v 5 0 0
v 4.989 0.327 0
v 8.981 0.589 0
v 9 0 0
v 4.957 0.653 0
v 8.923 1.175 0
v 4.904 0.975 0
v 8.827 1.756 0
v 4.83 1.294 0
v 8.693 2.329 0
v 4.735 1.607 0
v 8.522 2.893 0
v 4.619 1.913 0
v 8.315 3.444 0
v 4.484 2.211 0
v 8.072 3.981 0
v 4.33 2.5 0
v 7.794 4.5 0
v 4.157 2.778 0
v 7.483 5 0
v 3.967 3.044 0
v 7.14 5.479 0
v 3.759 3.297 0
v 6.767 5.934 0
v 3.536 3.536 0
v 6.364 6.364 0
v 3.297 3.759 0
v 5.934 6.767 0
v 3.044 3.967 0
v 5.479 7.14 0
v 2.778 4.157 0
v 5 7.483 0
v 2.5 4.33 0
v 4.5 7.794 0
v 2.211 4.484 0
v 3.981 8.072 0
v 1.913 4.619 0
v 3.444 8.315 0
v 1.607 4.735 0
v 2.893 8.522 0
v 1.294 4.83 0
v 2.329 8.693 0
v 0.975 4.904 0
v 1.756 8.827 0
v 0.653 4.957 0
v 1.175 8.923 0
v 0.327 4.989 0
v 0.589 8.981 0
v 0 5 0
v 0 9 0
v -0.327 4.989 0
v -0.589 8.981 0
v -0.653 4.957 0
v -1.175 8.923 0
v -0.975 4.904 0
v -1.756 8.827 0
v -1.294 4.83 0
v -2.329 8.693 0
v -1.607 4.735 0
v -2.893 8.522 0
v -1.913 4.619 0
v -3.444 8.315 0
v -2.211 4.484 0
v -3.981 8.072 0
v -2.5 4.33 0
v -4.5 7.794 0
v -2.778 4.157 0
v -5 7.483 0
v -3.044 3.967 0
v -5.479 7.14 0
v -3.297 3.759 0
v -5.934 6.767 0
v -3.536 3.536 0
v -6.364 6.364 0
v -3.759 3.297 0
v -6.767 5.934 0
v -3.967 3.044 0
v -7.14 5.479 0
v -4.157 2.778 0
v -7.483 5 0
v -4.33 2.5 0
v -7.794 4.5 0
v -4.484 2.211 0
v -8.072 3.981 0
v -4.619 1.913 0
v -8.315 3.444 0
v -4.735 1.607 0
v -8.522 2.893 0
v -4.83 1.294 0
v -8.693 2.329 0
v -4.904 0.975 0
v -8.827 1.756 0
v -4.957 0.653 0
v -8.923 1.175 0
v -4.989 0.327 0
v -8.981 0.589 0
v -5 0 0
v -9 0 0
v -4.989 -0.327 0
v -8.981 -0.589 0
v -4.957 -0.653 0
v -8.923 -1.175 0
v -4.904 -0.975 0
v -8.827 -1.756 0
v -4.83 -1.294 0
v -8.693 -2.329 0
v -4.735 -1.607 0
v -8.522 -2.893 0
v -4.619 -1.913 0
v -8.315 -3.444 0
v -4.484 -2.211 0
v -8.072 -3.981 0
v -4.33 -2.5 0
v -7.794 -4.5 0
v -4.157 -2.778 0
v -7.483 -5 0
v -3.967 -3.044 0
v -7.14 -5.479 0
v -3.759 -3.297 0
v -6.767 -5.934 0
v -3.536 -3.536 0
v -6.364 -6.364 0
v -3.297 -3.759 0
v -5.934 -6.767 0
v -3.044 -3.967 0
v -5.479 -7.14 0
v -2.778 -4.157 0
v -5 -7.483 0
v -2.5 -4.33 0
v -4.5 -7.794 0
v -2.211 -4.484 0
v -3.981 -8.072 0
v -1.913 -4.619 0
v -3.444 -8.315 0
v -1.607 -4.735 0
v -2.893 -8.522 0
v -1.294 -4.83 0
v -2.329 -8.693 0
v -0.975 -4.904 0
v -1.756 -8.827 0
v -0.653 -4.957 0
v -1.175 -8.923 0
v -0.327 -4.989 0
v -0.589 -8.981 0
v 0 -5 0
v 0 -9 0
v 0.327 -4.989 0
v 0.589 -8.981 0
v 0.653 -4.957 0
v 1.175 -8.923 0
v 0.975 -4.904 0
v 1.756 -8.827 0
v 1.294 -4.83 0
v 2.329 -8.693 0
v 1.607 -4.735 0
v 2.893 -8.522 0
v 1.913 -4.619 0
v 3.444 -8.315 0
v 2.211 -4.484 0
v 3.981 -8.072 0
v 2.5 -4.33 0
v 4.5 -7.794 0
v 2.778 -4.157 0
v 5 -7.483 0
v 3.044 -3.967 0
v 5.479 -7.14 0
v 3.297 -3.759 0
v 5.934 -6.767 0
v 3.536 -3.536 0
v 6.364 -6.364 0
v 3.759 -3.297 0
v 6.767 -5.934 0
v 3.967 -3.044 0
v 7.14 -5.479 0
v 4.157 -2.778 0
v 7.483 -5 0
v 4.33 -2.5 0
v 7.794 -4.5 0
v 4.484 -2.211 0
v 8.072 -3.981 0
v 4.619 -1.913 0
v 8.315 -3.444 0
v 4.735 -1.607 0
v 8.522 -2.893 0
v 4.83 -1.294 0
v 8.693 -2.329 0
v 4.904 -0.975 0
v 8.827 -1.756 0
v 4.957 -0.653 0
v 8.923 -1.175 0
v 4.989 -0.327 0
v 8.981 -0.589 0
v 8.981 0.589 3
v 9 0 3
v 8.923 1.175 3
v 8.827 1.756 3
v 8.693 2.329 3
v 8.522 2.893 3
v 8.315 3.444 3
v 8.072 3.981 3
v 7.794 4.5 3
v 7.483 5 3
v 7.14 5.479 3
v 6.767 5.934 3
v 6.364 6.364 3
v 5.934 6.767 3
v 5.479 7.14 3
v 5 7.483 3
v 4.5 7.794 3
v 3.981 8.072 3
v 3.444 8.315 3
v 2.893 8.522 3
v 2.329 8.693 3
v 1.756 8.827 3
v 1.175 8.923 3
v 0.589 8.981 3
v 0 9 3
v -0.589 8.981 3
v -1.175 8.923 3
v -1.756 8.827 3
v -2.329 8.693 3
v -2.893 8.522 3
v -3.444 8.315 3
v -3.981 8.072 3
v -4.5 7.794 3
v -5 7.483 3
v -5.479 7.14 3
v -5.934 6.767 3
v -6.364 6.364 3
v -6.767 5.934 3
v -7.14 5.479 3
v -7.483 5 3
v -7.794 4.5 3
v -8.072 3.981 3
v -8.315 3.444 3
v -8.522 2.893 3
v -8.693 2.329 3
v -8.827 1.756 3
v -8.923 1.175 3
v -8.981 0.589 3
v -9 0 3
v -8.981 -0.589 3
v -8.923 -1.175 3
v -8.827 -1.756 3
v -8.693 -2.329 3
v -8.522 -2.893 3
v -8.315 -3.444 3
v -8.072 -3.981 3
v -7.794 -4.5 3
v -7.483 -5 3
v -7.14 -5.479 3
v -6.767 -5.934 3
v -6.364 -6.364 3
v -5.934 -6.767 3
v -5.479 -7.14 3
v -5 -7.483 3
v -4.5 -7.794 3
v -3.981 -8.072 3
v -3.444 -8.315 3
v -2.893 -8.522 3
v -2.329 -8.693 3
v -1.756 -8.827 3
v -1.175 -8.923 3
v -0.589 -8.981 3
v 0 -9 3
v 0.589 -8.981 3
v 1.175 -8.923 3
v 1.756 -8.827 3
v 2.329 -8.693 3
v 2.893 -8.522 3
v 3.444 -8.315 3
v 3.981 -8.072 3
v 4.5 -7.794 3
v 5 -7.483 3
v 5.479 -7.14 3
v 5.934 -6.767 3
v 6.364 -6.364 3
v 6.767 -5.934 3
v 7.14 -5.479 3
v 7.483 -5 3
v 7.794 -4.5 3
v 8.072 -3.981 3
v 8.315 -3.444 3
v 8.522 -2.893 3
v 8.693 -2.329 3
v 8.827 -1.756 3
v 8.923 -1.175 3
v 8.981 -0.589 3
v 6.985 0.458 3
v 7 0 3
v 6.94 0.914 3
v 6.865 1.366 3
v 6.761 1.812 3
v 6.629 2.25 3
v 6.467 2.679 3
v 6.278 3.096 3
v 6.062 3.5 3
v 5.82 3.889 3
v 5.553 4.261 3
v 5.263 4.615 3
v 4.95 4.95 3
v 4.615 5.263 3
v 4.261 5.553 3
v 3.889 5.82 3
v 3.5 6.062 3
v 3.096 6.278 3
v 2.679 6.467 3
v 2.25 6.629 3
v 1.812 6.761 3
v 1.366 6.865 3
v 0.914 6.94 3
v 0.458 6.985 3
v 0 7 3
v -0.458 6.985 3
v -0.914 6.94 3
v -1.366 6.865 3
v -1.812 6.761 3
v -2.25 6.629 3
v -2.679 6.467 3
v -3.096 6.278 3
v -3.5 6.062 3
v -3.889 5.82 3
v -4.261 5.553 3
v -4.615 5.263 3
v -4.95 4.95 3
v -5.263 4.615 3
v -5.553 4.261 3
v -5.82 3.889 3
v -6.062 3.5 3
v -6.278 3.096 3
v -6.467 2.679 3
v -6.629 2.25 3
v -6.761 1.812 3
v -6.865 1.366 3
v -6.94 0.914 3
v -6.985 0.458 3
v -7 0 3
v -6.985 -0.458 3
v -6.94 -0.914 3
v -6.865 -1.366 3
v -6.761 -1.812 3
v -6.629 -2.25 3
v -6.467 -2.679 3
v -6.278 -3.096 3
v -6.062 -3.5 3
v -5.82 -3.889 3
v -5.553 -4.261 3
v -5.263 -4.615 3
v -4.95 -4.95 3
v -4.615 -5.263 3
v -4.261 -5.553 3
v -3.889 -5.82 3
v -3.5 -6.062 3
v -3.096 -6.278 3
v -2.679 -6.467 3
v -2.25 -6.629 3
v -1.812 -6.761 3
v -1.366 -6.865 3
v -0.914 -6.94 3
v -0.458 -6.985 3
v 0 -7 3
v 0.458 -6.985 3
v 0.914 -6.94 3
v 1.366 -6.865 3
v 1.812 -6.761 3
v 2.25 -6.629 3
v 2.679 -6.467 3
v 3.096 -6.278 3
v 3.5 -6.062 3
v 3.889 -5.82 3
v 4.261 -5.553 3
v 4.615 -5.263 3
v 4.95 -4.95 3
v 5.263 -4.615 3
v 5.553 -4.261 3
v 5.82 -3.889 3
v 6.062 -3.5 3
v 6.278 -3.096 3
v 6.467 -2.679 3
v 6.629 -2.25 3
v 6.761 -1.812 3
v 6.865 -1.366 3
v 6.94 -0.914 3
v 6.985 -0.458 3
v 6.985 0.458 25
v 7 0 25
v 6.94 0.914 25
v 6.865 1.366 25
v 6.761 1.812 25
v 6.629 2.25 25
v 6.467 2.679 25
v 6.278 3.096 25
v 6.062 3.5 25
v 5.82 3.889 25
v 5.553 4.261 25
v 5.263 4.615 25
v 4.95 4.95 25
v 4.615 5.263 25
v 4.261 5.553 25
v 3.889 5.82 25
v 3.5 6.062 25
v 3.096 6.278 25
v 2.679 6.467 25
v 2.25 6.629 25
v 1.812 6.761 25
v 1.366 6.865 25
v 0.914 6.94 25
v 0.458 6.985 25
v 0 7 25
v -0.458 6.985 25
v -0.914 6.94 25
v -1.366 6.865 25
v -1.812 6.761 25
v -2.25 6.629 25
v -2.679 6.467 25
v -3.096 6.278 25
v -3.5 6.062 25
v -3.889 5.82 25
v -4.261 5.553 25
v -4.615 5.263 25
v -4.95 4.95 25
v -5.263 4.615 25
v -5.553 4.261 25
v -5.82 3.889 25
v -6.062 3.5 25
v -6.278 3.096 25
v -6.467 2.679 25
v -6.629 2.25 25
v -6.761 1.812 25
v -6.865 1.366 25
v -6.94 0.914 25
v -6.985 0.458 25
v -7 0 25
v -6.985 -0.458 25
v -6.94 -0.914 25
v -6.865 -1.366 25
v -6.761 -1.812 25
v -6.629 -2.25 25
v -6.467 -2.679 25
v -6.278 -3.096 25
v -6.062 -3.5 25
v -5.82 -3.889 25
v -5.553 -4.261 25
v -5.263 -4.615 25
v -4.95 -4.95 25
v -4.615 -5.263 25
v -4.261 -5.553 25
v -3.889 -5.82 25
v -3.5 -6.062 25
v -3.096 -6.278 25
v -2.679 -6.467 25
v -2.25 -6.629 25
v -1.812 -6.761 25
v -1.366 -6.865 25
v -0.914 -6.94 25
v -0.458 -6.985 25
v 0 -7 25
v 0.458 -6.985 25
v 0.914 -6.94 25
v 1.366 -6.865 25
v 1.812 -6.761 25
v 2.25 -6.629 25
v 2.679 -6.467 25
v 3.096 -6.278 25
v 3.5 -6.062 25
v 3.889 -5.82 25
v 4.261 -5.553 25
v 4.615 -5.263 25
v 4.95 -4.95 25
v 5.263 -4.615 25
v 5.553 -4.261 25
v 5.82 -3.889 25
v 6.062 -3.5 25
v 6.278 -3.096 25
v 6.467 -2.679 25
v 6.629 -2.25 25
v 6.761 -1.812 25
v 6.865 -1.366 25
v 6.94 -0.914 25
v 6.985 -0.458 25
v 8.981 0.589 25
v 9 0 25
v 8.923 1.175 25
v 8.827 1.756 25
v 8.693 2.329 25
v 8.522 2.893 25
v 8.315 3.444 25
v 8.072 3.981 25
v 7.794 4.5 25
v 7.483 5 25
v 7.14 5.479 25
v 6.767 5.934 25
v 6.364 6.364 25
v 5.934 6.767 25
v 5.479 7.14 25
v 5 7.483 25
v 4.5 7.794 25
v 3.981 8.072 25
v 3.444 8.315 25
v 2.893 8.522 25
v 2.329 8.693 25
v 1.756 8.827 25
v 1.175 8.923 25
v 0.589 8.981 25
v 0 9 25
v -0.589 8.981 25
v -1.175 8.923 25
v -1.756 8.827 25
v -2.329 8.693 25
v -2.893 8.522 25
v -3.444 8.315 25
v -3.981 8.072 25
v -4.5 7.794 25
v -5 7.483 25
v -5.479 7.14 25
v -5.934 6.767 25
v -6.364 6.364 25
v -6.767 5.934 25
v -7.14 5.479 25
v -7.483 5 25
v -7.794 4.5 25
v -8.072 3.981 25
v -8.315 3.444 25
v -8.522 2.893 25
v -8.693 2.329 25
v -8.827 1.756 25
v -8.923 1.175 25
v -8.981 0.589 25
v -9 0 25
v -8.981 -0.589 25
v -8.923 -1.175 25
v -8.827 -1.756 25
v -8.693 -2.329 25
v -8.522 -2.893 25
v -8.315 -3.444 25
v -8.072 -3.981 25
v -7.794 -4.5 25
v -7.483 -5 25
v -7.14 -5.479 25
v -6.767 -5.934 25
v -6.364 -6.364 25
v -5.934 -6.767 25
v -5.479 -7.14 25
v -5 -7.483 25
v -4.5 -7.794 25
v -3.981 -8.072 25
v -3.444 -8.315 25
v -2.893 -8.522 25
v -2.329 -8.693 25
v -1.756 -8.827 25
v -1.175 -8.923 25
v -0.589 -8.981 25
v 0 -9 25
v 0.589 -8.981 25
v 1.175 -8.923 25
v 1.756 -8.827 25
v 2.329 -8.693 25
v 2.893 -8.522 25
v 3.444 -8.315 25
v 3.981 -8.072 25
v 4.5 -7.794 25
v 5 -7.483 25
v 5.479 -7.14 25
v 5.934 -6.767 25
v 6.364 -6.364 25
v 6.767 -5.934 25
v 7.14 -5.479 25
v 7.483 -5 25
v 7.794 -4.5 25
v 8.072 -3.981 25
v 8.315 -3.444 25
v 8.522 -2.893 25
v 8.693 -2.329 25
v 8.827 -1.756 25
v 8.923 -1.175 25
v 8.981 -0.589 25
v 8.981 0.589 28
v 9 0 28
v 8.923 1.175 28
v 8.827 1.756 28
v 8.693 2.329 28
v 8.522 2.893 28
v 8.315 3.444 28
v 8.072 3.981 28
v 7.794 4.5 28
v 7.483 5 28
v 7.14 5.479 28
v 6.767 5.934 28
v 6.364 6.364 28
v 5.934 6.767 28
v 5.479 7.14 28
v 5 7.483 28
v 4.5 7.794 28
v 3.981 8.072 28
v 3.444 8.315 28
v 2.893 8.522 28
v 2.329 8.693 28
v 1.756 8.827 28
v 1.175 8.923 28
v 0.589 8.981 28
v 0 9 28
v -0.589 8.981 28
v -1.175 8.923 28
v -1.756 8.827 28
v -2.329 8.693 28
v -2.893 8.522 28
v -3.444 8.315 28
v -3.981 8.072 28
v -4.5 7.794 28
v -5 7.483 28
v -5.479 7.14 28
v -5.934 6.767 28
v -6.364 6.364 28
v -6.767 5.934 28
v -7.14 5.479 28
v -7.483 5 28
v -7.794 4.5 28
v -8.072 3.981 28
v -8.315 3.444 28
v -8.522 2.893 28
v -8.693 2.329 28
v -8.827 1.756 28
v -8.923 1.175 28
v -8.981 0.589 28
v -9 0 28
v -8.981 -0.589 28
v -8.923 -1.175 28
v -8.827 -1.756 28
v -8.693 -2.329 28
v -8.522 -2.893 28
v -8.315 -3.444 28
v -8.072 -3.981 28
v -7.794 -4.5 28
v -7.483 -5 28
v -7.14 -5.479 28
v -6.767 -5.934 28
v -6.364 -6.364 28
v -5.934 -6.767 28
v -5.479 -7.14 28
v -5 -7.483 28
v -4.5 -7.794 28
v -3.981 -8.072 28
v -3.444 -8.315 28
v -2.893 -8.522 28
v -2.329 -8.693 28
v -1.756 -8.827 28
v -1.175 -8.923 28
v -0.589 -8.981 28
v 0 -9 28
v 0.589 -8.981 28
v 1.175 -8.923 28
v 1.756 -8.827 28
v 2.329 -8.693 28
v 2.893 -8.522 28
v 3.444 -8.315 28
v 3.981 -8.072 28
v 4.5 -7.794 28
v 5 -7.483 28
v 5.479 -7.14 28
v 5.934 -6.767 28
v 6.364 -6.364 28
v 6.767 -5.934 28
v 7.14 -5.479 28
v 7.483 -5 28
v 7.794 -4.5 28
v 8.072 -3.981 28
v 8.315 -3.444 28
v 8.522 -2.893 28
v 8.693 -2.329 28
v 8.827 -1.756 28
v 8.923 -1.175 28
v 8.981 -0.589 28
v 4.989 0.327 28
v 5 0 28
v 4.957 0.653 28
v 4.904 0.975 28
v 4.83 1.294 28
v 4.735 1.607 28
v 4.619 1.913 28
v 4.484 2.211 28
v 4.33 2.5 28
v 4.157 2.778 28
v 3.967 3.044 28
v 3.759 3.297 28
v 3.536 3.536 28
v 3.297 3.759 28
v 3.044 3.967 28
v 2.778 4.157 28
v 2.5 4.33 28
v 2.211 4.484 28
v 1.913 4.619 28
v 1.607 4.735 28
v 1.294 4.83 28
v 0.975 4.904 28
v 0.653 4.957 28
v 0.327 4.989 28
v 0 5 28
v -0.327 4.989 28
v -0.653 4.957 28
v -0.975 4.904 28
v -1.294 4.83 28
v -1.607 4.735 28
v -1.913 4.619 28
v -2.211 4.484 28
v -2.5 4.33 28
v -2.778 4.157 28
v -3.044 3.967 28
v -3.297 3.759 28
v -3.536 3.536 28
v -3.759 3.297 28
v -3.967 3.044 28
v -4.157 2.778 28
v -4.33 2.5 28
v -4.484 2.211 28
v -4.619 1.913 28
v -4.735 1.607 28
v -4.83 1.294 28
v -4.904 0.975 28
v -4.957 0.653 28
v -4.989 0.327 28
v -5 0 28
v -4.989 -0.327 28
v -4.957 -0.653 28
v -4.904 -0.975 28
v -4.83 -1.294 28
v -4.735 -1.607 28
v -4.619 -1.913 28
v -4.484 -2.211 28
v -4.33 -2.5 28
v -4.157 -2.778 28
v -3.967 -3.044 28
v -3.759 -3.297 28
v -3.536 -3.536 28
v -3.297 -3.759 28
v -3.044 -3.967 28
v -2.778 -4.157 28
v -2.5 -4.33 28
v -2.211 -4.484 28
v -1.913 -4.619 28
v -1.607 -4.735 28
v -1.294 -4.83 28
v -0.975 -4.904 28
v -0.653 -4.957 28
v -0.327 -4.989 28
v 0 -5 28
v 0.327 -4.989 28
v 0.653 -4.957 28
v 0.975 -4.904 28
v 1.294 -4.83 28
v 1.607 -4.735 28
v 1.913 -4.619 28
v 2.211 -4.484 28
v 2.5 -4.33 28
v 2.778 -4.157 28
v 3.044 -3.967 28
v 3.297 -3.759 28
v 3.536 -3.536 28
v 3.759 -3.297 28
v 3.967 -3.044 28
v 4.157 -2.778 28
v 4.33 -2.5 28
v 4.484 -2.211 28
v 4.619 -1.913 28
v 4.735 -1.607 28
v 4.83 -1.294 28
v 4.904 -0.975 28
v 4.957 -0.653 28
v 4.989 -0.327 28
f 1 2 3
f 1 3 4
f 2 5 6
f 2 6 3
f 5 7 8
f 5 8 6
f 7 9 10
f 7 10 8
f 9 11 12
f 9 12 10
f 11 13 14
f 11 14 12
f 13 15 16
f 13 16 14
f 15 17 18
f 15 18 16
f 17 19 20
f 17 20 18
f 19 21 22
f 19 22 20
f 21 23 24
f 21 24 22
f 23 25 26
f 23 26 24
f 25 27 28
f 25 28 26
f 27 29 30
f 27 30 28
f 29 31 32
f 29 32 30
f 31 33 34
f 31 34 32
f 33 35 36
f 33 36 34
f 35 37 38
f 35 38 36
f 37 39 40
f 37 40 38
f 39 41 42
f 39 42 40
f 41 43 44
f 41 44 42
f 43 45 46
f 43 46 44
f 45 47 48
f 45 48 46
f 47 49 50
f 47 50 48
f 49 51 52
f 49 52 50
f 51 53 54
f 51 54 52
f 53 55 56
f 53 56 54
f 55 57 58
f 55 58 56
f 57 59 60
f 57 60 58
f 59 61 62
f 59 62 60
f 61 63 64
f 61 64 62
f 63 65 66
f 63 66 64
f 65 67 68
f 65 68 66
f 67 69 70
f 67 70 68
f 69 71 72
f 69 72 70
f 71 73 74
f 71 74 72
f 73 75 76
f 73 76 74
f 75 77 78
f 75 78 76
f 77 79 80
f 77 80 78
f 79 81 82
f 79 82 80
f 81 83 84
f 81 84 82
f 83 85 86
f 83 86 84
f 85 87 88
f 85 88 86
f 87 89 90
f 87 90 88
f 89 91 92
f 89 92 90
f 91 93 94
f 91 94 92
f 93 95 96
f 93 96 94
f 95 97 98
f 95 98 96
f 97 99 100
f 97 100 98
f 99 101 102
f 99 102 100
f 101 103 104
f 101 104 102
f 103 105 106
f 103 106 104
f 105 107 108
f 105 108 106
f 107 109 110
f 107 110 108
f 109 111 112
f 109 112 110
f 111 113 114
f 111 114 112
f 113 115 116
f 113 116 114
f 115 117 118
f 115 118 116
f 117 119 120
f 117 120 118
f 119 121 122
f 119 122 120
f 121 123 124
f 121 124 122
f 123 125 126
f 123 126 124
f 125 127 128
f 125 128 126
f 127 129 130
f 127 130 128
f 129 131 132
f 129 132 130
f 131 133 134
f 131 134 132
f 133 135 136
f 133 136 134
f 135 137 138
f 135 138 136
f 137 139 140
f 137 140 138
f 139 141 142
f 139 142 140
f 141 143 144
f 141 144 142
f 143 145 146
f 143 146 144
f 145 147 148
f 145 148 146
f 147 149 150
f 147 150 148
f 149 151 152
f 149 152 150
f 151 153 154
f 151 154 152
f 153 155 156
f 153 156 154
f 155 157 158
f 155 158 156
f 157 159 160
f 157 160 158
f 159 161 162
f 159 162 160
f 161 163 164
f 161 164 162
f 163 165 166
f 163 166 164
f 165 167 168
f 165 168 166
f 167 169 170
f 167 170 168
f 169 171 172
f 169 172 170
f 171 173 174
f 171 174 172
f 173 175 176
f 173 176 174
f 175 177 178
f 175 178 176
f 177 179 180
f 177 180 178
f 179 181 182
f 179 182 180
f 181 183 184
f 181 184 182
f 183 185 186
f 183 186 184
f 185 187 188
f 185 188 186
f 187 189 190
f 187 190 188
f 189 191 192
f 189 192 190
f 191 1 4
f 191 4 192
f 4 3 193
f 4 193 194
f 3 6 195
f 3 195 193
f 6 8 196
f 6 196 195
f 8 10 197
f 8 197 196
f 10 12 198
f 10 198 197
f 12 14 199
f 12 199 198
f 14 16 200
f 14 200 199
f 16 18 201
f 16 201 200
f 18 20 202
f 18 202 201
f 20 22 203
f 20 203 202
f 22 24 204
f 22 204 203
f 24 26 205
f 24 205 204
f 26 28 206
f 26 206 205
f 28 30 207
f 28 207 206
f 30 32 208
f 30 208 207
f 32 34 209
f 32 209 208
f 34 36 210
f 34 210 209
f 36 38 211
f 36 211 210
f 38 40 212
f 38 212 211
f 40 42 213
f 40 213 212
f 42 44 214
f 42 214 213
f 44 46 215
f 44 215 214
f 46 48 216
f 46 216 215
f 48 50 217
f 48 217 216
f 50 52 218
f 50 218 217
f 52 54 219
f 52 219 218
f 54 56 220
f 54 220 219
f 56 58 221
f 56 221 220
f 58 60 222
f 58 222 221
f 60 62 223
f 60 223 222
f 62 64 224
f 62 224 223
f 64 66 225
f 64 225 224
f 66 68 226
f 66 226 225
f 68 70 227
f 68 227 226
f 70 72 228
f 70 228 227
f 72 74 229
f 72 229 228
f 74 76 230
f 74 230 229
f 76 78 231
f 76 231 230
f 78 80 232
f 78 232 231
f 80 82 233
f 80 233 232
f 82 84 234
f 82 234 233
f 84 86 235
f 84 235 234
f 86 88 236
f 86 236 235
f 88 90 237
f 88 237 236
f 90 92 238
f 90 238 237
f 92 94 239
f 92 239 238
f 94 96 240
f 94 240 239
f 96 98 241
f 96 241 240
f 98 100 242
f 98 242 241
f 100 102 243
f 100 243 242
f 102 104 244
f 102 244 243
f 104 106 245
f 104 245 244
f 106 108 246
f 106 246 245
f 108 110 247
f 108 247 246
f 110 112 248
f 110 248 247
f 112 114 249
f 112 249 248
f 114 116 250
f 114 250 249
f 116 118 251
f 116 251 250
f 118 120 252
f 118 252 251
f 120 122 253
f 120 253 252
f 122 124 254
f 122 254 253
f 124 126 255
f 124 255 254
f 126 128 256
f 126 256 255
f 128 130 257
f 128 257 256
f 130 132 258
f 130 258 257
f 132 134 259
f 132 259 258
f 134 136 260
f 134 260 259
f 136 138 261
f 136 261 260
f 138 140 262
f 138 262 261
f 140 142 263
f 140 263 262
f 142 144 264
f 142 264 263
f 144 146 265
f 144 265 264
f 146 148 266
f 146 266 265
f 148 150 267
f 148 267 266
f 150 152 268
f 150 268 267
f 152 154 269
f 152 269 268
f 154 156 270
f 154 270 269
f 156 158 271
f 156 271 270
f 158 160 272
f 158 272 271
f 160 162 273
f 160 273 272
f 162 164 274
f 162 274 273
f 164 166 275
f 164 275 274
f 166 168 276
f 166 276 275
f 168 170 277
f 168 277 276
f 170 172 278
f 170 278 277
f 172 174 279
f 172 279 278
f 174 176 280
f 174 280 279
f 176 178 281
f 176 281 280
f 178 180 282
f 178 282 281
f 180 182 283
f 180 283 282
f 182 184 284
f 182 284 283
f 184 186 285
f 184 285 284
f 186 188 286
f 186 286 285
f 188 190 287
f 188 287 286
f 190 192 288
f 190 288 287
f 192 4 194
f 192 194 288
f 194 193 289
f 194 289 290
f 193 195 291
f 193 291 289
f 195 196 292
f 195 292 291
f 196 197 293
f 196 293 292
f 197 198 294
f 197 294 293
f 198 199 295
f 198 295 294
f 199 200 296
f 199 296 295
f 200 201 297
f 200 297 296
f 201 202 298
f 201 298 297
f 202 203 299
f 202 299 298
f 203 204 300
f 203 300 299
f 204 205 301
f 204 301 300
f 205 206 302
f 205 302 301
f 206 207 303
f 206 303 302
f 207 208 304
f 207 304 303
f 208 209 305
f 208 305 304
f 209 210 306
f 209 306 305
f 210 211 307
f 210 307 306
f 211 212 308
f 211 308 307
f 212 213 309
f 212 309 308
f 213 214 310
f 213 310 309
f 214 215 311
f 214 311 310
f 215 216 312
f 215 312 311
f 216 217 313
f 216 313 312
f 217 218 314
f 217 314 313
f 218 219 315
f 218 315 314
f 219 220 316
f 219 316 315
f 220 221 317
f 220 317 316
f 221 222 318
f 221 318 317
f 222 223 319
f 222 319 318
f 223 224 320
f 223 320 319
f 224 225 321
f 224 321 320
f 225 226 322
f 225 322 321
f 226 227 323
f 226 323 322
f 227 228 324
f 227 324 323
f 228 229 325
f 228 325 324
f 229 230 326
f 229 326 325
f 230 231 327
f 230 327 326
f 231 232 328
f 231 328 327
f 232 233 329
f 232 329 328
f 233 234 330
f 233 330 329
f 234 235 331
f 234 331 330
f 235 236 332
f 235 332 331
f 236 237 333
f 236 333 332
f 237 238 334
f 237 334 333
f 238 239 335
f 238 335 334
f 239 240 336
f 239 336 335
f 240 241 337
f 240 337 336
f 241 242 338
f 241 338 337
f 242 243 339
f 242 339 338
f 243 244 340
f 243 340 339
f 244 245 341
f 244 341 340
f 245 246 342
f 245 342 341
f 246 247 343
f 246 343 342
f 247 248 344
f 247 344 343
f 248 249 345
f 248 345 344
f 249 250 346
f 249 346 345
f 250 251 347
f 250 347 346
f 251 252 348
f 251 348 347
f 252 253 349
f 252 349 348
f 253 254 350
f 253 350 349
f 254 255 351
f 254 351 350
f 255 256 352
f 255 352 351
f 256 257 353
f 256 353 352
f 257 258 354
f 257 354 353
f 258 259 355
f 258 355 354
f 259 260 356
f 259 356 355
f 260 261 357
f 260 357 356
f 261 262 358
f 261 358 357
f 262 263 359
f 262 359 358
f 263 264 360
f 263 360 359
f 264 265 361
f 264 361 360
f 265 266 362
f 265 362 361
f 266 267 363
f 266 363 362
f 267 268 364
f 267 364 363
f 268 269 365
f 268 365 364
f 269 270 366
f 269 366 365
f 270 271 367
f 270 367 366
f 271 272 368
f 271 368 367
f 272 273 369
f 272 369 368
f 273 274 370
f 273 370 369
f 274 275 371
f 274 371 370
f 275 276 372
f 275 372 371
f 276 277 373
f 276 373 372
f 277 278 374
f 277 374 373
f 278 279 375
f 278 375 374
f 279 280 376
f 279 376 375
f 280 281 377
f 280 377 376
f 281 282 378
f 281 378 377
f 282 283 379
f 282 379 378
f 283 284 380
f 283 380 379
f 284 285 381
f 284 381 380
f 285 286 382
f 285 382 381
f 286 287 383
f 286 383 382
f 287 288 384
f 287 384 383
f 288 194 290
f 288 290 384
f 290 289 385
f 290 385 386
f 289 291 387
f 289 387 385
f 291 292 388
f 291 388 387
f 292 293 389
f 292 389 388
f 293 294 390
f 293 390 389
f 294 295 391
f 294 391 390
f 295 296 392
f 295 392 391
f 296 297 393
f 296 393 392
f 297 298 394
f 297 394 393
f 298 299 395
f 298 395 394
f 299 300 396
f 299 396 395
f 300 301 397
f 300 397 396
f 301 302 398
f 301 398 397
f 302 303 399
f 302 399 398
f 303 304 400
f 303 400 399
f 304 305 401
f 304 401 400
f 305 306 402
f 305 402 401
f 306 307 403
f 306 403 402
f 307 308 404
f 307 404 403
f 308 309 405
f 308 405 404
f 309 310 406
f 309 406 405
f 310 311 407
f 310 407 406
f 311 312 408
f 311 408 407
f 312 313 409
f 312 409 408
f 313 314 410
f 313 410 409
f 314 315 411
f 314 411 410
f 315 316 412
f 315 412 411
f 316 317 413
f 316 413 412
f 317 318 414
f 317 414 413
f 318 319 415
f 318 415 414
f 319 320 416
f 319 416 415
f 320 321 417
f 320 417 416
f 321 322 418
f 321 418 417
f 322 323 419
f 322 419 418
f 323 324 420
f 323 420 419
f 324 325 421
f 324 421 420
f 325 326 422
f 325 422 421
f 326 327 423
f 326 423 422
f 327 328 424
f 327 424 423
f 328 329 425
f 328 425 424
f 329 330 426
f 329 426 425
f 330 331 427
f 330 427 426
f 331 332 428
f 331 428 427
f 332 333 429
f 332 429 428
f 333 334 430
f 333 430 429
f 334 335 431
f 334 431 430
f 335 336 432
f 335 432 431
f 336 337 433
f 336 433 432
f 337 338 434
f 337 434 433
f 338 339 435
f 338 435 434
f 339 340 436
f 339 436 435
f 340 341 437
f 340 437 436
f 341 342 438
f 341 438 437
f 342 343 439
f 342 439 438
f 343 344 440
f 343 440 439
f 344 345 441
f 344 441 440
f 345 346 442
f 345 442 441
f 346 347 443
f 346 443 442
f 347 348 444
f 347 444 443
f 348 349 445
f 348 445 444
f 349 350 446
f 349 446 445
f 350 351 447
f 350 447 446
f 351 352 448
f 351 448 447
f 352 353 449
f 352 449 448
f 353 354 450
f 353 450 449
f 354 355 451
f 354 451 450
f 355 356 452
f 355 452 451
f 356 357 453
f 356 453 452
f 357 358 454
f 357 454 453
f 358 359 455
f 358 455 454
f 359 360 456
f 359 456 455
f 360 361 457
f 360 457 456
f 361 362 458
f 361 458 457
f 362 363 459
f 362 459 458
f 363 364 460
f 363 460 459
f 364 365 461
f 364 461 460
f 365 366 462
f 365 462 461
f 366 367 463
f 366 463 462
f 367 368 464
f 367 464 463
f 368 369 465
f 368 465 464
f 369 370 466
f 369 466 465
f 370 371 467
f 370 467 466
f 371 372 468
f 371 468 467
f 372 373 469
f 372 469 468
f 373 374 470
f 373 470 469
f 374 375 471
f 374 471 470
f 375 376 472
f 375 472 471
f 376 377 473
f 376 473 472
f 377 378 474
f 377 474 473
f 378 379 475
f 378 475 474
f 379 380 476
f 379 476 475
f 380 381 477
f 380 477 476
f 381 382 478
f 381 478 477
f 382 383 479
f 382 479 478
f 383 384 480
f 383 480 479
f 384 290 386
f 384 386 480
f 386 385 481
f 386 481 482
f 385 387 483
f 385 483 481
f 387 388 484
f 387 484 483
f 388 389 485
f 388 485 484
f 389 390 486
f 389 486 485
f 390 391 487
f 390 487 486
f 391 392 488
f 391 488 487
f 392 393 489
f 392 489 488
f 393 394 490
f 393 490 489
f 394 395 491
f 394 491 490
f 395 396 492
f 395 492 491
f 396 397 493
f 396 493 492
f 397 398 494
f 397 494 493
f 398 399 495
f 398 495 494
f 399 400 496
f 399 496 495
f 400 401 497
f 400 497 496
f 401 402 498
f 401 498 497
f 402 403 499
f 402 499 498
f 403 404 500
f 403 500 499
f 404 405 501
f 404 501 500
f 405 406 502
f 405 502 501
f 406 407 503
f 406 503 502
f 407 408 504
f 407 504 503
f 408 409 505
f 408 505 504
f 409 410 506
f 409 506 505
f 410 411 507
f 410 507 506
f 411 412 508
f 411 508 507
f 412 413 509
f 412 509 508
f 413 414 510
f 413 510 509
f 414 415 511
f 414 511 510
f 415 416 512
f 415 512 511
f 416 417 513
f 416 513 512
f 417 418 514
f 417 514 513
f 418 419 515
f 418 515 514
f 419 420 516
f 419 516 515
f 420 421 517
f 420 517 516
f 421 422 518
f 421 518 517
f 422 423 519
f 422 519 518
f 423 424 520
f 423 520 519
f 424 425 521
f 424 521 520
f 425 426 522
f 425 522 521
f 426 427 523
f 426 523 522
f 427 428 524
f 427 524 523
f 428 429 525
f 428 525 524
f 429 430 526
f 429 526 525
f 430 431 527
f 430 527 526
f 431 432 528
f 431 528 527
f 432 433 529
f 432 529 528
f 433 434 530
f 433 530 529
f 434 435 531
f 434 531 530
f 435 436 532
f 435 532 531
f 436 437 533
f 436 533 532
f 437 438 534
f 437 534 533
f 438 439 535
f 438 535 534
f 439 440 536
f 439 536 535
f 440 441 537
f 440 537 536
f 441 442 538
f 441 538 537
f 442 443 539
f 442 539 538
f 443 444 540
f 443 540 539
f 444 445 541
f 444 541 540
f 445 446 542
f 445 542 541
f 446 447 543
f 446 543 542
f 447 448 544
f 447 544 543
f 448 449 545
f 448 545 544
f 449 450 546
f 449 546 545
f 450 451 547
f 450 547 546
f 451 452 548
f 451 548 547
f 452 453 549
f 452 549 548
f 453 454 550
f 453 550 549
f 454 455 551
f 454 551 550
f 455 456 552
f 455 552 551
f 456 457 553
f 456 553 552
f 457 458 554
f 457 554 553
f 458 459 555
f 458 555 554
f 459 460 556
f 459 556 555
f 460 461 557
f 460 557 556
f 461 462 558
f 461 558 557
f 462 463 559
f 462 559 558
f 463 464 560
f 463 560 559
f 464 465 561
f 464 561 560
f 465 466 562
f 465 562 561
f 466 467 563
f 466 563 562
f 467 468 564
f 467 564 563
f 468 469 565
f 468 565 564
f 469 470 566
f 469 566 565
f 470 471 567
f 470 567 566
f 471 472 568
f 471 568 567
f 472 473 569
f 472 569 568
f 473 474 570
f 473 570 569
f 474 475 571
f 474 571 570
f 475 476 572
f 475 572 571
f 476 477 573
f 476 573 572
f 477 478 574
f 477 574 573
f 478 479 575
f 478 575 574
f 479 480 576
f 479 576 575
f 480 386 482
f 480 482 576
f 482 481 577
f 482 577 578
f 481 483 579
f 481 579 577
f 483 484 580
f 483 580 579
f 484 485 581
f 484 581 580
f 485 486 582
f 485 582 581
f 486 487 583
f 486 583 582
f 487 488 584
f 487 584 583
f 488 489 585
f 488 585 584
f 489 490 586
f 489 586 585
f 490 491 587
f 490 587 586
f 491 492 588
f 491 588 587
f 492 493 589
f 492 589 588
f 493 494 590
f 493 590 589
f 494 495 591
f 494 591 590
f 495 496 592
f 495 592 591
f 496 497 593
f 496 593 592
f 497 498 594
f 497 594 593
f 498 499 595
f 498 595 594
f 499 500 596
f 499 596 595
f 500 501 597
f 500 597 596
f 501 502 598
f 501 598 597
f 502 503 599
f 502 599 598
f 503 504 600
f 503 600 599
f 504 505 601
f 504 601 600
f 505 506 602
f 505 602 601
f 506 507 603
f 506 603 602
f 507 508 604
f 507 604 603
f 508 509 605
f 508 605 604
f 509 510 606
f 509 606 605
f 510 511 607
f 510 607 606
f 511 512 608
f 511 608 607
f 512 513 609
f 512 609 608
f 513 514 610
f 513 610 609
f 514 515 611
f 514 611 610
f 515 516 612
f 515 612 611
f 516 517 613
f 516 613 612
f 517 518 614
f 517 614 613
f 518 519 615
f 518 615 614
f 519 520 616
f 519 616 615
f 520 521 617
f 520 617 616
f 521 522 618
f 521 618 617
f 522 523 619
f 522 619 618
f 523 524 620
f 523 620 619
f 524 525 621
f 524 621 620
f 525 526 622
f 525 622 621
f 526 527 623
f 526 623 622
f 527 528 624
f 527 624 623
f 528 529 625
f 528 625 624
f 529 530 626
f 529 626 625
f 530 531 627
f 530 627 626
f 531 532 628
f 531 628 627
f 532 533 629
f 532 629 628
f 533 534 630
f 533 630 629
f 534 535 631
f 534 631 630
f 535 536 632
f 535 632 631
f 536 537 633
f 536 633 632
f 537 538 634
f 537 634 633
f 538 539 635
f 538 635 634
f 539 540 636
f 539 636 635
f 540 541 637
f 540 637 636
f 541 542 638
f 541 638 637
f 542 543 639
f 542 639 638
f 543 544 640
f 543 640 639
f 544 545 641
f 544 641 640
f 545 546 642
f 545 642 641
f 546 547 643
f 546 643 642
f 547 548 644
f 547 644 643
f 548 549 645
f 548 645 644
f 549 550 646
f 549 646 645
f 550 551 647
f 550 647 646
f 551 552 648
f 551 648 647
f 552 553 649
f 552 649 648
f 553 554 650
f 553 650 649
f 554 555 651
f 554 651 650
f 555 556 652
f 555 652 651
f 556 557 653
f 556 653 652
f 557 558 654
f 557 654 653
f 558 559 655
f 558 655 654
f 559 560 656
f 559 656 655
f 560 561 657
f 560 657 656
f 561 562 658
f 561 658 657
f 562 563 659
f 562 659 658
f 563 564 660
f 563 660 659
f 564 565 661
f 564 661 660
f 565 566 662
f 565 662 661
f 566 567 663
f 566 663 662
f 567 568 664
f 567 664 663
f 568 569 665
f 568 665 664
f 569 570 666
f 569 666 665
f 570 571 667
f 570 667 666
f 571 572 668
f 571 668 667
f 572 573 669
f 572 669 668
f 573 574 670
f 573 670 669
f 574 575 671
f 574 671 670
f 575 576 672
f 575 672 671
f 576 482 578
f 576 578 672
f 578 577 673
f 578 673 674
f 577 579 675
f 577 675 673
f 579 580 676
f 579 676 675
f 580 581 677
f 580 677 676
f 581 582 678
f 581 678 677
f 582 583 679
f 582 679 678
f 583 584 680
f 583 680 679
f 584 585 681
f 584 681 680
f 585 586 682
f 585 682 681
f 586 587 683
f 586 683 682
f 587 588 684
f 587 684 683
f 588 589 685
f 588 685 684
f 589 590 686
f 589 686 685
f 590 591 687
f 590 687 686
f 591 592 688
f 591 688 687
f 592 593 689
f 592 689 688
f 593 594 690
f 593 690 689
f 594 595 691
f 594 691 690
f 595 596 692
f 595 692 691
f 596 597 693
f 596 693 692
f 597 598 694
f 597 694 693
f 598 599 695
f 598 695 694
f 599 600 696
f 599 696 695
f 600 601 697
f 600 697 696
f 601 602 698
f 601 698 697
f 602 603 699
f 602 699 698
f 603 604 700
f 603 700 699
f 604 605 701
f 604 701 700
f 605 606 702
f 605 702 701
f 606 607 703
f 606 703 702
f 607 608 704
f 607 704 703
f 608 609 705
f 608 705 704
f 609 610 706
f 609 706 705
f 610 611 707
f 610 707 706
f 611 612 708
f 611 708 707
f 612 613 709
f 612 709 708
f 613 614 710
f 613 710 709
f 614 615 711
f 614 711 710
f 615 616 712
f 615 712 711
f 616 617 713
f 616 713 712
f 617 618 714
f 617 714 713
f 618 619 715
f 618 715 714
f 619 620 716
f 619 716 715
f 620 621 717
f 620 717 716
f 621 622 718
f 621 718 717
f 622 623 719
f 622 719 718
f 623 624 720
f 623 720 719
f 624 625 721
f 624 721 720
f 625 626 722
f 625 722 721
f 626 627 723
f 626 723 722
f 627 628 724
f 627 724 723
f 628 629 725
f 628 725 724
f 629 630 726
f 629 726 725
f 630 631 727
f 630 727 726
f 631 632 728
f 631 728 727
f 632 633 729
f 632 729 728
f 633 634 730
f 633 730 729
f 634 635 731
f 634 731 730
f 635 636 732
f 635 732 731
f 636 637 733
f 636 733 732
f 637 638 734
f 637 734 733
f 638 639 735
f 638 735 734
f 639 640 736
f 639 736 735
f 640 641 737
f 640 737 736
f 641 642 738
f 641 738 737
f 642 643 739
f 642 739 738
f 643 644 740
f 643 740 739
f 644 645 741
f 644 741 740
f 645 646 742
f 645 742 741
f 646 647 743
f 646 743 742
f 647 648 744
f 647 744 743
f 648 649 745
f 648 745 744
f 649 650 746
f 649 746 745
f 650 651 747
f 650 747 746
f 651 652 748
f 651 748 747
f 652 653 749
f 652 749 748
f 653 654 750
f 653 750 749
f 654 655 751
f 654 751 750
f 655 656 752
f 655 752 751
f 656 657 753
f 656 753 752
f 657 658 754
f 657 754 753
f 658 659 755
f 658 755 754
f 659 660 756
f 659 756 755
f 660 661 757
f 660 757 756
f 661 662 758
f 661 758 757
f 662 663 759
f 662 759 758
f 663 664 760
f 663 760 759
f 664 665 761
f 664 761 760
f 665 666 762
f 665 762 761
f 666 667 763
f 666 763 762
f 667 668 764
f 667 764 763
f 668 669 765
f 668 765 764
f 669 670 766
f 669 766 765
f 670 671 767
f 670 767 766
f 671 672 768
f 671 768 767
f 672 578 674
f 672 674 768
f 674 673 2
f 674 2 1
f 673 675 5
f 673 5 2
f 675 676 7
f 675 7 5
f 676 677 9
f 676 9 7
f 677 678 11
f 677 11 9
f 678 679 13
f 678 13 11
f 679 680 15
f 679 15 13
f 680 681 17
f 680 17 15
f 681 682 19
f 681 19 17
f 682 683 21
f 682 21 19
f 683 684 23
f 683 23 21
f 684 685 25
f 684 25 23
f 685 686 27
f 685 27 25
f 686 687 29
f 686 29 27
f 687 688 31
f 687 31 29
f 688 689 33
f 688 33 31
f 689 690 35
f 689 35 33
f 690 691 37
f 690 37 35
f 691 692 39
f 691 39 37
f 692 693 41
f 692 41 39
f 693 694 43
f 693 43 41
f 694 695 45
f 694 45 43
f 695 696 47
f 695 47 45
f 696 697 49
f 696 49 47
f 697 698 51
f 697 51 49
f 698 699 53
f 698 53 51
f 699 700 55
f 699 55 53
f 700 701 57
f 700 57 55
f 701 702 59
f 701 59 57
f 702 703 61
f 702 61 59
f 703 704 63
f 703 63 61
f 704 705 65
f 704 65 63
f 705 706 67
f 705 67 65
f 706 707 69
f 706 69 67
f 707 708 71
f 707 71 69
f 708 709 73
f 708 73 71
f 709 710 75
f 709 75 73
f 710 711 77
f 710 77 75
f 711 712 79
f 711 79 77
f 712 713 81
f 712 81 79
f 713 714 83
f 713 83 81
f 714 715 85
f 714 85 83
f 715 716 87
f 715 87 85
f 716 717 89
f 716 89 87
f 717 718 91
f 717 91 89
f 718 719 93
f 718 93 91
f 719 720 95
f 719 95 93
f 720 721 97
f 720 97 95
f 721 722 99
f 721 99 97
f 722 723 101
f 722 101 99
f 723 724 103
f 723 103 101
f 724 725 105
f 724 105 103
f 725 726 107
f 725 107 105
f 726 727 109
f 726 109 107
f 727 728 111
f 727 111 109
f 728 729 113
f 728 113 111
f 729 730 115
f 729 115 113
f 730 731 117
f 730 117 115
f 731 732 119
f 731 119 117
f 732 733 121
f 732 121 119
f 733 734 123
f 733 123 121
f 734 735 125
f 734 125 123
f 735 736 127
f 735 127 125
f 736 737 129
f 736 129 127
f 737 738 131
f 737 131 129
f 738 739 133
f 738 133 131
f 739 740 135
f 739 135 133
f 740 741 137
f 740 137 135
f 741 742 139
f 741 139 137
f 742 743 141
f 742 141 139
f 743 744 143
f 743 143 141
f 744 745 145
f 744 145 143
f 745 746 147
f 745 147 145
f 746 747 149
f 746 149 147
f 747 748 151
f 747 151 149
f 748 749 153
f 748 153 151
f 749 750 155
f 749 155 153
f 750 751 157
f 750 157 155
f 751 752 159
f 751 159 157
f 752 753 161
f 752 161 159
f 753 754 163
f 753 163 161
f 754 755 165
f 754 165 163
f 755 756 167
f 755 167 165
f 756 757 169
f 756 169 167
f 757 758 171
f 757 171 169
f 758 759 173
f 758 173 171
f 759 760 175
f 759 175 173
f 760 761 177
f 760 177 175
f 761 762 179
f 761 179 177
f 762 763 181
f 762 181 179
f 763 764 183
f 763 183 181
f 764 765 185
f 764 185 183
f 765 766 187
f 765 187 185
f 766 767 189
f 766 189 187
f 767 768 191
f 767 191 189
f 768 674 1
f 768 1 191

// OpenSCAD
// Original MechIntel educational model. CC0-1.0. Units: mm.
// Not a standardized or load-rated component.
$fn=96;
// Section points: [radius, height], mm. Edit to change the profile.
section=[[5, 0], [9, 0], [9, 3], [7, 3], [7, 25], [9, 25], [9, 28], [5, 28]];
rotate_extrude($fn=96) polygon(points=section);
